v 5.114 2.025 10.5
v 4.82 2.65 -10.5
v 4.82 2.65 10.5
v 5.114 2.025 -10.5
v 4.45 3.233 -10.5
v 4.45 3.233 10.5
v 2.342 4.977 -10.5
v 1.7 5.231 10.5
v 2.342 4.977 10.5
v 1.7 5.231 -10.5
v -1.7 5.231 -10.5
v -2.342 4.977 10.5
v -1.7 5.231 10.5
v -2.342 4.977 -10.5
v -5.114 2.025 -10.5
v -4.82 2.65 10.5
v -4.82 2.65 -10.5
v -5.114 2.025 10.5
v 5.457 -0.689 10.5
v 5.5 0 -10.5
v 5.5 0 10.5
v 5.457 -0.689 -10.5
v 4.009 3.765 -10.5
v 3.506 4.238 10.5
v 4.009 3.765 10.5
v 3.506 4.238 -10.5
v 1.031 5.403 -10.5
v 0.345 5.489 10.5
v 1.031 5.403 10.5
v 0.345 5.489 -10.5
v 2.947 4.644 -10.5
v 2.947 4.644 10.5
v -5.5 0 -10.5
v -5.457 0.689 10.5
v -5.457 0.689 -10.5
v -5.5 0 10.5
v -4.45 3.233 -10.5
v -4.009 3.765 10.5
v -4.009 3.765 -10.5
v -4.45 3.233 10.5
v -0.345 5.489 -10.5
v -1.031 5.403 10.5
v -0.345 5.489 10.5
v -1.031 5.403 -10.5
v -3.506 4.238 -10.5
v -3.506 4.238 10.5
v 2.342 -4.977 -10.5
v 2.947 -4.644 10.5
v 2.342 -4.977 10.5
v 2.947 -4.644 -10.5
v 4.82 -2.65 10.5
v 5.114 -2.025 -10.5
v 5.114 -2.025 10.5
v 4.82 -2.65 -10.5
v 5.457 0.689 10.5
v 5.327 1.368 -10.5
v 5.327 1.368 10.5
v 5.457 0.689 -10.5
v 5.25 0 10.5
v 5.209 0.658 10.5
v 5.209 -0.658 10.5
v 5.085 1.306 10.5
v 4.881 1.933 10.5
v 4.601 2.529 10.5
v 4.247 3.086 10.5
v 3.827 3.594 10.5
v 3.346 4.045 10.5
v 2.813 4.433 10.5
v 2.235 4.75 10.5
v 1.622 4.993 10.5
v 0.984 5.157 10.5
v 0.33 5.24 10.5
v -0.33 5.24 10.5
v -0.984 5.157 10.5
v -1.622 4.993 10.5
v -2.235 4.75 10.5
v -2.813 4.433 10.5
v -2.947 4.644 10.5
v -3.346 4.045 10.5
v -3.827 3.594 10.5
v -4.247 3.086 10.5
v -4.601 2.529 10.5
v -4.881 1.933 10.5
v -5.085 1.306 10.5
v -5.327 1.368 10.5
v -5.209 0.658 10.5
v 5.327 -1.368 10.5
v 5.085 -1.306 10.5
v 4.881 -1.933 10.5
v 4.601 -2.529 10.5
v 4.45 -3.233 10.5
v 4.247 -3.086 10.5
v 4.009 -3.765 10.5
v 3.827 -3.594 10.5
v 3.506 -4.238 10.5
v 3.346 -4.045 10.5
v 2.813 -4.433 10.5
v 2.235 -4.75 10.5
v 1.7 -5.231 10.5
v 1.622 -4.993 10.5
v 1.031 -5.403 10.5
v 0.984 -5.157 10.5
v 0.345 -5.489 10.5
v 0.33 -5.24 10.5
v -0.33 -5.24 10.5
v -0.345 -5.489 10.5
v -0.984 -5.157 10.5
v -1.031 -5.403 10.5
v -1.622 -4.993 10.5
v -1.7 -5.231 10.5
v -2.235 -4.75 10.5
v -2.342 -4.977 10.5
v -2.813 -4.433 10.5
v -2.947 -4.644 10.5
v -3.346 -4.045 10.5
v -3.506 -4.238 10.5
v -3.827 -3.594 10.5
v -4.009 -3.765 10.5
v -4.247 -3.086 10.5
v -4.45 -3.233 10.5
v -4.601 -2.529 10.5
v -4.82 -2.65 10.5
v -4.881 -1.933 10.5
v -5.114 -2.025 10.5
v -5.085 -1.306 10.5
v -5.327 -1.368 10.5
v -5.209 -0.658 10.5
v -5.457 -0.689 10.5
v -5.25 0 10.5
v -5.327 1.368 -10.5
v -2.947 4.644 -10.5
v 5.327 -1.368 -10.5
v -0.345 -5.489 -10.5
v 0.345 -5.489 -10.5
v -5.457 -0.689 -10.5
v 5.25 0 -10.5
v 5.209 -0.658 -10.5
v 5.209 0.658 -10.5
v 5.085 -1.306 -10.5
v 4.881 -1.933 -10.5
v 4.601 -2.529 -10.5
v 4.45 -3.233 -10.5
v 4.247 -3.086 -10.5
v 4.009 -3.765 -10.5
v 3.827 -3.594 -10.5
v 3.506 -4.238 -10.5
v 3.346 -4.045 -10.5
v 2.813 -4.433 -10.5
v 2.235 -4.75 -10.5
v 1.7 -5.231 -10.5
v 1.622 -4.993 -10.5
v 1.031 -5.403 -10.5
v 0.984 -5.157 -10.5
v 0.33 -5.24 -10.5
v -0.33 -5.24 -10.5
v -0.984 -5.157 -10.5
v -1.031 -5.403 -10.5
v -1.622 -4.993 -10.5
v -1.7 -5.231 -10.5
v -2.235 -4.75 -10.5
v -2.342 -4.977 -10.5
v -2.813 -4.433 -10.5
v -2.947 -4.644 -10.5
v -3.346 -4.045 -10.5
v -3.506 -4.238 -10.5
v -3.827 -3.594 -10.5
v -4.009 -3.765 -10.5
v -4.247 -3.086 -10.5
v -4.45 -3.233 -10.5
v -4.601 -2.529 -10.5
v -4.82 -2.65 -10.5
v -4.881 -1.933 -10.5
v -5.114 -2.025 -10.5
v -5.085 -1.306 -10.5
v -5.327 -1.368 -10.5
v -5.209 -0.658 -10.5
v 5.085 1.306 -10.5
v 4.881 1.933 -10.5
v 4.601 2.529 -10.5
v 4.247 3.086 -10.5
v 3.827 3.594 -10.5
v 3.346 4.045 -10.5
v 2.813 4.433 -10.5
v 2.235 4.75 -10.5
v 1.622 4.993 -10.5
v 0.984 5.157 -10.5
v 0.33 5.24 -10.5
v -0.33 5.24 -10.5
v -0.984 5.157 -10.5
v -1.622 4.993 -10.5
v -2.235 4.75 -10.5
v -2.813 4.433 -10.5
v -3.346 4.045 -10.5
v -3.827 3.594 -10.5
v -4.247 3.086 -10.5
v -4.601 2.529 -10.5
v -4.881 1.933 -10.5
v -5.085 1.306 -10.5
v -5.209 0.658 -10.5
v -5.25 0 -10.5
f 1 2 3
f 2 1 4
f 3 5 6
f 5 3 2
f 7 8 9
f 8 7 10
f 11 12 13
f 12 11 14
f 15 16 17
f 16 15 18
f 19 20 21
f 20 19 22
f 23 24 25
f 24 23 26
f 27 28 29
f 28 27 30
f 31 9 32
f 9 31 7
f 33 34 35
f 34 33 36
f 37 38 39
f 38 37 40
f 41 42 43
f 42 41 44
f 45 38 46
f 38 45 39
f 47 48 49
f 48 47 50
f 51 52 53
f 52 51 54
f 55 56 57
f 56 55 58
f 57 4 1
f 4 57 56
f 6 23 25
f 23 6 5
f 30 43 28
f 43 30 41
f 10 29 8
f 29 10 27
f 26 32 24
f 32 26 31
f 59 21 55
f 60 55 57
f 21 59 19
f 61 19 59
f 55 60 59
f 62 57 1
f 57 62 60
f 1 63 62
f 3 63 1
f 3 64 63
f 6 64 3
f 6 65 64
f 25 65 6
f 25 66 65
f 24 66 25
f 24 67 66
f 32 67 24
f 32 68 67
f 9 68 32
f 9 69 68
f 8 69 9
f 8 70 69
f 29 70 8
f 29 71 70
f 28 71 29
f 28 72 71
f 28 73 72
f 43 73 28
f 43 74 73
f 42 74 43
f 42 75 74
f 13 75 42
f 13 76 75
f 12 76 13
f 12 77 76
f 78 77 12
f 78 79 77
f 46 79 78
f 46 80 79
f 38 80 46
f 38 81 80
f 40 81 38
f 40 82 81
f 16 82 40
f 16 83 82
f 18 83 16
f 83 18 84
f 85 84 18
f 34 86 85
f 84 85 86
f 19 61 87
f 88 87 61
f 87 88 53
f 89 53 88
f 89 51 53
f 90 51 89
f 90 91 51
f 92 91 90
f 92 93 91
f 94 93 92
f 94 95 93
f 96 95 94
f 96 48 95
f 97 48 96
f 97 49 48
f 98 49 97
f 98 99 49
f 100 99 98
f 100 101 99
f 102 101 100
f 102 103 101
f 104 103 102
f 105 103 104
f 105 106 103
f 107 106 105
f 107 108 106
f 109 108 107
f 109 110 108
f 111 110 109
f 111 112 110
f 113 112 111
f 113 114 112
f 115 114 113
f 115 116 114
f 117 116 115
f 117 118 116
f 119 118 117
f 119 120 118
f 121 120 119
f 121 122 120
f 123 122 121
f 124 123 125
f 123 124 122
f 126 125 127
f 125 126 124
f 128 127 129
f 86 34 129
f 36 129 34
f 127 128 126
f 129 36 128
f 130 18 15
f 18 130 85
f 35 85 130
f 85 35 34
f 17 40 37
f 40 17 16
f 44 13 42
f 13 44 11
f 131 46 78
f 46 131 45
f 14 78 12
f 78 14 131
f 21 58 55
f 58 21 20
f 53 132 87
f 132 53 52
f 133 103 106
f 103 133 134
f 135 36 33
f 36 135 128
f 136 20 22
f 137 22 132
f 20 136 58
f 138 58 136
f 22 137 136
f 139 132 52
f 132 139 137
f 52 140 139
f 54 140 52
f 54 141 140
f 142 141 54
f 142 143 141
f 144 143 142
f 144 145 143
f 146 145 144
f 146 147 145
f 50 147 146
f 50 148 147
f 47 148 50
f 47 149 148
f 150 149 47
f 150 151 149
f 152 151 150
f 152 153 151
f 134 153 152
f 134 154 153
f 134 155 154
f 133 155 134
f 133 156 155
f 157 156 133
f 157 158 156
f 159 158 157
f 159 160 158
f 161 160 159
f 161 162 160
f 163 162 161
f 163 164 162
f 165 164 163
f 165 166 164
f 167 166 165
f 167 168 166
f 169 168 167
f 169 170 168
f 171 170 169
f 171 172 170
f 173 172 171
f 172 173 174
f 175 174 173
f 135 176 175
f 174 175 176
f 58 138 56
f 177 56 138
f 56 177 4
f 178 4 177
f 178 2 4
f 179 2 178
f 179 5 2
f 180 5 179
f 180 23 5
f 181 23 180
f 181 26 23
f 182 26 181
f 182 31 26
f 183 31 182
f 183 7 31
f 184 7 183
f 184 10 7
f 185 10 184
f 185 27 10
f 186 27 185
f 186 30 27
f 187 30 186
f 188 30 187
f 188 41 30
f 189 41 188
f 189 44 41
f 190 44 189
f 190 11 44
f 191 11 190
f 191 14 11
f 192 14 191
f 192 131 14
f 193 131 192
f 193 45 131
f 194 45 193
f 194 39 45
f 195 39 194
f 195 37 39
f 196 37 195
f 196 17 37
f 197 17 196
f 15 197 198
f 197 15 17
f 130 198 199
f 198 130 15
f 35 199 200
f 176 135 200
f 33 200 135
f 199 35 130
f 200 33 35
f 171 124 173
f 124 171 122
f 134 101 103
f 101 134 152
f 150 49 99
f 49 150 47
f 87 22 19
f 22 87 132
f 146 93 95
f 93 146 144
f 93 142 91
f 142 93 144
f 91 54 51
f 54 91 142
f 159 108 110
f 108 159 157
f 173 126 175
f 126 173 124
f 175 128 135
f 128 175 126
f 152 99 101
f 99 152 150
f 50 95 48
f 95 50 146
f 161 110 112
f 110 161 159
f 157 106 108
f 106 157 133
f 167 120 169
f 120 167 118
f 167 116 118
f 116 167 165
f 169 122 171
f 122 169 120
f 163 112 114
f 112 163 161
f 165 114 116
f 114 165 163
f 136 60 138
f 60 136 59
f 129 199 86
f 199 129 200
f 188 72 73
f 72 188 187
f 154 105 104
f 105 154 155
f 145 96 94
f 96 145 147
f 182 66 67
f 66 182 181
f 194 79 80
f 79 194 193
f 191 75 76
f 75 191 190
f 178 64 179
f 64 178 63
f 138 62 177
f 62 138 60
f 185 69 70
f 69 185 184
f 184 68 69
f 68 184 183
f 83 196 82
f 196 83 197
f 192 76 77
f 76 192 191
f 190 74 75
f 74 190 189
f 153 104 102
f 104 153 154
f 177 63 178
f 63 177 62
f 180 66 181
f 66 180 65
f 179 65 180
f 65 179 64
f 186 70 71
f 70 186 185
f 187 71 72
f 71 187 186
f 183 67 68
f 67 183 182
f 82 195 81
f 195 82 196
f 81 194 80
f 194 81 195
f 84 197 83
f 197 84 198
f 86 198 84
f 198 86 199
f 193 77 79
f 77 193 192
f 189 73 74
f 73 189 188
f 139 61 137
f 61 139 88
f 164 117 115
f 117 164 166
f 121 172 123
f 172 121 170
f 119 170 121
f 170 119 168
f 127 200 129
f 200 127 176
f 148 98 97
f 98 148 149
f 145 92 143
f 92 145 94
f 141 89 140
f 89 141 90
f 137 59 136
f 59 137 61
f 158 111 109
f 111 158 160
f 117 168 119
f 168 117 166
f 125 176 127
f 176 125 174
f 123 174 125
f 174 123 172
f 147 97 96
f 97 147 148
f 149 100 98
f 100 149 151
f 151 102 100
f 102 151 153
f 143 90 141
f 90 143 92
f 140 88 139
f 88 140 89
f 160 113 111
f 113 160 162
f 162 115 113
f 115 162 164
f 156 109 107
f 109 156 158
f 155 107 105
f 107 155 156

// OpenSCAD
$fn = 50;


difference() {
	union() {
		translate(v = [0, 0, -10.5000000000]) {
			cylinder(h = 21, r = 5.5000000000);
		}
	}
	union() {
		translate(v = [0, 0, -100.0000000000]) {
			cylinder(h = 200, r = 5.2500000000);
		}
	}
}
